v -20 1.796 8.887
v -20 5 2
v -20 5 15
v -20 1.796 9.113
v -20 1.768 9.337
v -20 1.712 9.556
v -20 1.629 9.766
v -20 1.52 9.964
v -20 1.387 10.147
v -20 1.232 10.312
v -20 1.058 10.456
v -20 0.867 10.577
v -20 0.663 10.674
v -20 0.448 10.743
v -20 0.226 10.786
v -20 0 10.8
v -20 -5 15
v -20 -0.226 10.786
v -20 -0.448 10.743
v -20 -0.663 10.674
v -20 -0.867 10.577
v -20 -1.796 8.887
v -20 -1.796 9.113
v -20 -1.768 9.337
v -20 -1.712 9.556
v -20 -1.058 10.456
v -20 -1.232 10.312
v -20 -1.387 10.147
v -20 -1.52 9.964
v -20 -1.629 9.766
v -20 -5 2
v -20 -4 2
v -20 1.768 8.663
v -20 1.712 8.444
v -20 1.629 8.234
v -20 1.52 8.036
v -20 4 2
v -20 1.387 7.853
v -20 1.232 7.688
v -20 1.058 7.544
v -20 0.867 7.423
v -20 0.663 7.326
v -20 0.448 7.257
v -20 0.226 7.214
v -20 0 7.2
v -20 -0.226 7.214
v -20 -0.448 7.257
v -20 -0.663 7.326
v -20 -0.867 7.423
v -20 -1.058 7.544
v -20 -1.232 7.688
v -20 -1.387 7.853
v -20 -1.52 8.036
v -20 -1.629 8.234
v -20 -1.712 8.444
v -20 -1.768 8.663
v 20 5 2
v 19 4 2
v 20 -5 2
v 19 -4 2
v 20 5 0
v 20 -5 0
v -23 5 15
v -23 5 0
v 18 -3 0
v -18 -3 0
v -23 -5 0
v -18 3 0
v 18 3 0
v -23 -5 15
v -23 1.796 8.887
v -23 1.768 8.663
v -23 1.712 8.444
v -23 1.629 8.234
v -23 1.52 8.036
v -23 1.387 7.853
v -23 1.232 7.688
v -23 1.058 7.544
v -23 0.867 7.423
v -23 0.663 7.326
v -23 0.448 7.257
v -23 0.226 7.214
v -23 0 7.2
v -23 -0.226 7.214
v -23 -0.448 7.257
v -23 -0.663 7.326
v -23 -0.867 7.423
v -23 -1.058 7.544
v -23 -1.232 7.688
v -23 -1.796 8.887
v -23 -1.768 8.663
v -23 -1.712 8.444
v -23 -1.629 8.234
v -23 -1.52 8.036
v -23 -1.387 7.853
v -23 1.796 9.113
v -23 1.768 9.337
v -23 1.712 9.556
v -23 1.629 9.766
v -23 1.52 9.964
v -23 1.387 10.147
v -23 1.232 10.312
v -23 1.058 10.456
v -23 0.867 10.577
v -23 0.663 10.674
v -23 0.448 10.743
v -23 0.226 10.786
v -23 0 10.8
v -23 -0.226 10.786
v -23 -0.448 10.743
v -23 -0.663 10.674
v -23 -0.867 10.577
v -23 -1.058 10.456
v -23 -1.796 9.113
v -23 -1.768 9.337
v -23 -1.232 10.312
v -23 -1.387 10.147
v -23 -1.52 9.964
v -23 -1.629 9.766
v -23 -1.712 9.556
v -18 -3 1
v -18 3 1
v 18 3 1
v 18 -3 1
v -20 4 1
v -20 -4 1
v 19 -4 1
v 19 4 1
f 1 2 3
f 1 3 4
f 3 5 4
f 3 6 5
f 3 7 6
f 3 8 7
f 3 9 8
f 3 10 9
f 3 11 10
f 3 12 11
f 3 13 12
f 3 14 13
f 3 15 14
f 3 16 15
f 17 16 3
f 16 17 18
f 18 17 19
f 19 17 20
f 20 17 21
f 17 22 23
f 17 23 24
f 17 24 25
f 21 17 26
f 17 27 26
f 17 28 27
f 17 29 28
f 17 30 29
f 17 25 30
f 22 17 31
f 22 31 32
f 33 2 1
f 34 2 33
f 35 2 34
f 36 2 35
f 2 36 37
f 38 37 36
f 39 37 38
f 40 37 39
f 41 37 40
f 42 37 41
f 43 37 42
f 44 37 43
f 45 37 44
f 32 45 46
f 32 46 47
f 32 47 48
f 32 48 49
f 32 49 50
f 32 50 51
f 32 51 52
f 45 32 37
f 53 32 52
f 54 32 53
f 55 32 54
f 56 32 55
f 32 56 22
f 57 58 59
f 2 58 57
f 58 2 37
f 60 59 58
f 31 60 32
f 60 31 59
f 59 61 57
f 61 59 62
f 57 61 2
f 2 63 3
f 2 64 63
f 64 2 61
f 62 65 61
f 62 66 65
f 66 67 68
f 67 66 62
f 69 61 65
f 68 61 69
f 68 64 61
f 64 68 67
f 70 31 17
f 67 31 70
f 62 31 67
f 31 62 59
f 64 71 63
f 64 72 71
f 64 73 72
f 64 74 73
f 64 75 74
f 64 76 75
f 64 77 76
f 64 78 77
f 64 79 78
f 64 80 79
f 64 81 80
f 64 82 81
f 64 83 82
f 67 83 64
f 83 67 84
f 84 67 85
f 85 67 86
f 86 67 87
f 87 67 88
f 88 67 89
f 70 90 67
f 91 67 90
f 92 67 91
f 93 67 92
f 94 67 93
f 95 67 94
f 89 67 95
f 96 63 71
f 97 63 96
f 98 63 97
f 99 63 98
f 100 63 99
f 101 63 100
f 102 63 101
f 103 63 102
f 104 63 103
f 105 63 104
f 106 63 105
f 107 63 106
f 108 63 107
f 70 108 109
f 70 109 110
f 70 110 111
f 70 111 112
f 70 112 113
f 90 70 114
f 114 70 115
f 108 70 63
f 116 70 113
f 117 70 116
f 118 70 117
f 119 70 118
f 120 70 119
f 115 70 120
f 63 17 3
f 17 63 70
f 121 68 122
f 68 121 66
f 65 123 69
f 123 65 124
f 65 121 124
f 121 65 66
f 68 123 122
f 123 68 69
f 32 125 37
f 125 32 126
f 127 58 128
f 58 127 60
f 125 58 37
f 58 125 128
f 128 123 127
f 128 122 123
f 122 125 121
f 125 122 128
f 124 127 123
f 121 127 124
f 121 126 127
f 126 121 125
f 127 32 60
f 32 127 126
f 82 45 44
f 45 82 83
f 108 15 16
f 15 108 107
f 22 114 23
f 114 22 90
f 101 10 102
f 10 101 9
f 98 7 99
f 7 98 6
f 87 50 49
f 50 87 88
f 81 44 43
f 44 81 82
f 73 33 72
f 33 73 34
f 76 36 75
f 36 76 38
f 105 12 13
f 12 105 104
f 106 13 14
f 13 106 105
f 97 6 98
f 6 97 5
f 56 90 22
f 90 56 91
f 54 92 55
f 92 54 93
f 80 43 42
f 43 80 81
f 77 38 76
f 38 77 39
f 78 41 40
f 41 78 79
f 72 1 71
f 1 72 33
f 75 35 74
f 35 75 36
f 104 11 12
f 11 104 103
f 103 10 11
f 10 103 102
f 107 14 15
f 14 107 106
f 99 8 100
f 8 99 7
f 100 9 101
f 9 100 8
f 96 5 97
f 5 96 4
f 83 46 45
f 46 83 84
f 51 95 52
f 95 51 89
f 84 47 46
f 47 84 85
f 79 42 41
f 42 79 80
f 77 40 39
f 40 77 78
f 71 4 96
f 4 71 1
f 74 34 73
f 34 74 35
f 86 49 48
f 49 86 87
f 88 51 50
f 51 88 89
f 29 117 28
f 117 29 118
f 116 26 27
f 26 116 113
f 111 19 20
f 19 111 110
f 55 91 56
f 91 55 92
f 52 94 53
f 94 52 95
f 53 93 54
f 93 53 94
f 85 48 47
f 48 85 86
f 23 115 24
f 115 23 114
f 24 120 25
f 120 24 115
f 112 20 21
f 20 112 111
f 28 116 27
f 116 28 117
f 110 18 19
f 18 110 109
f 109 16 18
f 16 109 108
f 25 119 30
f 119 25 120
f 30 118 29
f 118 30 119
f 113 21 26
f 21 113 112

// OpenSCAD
$fn = 50;


difference() {
	union() {
		translate(v = [-20.0000000000, -5.0000000000, 0]) {
			rotate(a = [0, 0, 0]) {
				cube(size = [40, 10, 2]);
			}
		}
		translate(v = [-23.0000000000, -5.0000000000, 0]) {
			rotate(a = [0, 0, 0]) {
				cube(size = [3, 10, 15]);
			}
		}
	}
	union() {
		translate(v = [-18.0000000000, -3.0000000000, 0]) {
			rotate(a = [0, 0, 0]) {
				cube(size = [36, 6, 2]);
			}
		}
		translate(v = [-20.0000000000, -4.0000000000, 1]) {
			rotate(a = [0, 0, 0]) {
				cube(size = [39, 8, 1]);
			}
		}
		#translate(v = [-30.0000000000, 0, 9]) {
			rotate(a = [0, 90, 0]) {
				cylinder(h = 20, r = 1.8000000000);
			}
		}
	}
}
